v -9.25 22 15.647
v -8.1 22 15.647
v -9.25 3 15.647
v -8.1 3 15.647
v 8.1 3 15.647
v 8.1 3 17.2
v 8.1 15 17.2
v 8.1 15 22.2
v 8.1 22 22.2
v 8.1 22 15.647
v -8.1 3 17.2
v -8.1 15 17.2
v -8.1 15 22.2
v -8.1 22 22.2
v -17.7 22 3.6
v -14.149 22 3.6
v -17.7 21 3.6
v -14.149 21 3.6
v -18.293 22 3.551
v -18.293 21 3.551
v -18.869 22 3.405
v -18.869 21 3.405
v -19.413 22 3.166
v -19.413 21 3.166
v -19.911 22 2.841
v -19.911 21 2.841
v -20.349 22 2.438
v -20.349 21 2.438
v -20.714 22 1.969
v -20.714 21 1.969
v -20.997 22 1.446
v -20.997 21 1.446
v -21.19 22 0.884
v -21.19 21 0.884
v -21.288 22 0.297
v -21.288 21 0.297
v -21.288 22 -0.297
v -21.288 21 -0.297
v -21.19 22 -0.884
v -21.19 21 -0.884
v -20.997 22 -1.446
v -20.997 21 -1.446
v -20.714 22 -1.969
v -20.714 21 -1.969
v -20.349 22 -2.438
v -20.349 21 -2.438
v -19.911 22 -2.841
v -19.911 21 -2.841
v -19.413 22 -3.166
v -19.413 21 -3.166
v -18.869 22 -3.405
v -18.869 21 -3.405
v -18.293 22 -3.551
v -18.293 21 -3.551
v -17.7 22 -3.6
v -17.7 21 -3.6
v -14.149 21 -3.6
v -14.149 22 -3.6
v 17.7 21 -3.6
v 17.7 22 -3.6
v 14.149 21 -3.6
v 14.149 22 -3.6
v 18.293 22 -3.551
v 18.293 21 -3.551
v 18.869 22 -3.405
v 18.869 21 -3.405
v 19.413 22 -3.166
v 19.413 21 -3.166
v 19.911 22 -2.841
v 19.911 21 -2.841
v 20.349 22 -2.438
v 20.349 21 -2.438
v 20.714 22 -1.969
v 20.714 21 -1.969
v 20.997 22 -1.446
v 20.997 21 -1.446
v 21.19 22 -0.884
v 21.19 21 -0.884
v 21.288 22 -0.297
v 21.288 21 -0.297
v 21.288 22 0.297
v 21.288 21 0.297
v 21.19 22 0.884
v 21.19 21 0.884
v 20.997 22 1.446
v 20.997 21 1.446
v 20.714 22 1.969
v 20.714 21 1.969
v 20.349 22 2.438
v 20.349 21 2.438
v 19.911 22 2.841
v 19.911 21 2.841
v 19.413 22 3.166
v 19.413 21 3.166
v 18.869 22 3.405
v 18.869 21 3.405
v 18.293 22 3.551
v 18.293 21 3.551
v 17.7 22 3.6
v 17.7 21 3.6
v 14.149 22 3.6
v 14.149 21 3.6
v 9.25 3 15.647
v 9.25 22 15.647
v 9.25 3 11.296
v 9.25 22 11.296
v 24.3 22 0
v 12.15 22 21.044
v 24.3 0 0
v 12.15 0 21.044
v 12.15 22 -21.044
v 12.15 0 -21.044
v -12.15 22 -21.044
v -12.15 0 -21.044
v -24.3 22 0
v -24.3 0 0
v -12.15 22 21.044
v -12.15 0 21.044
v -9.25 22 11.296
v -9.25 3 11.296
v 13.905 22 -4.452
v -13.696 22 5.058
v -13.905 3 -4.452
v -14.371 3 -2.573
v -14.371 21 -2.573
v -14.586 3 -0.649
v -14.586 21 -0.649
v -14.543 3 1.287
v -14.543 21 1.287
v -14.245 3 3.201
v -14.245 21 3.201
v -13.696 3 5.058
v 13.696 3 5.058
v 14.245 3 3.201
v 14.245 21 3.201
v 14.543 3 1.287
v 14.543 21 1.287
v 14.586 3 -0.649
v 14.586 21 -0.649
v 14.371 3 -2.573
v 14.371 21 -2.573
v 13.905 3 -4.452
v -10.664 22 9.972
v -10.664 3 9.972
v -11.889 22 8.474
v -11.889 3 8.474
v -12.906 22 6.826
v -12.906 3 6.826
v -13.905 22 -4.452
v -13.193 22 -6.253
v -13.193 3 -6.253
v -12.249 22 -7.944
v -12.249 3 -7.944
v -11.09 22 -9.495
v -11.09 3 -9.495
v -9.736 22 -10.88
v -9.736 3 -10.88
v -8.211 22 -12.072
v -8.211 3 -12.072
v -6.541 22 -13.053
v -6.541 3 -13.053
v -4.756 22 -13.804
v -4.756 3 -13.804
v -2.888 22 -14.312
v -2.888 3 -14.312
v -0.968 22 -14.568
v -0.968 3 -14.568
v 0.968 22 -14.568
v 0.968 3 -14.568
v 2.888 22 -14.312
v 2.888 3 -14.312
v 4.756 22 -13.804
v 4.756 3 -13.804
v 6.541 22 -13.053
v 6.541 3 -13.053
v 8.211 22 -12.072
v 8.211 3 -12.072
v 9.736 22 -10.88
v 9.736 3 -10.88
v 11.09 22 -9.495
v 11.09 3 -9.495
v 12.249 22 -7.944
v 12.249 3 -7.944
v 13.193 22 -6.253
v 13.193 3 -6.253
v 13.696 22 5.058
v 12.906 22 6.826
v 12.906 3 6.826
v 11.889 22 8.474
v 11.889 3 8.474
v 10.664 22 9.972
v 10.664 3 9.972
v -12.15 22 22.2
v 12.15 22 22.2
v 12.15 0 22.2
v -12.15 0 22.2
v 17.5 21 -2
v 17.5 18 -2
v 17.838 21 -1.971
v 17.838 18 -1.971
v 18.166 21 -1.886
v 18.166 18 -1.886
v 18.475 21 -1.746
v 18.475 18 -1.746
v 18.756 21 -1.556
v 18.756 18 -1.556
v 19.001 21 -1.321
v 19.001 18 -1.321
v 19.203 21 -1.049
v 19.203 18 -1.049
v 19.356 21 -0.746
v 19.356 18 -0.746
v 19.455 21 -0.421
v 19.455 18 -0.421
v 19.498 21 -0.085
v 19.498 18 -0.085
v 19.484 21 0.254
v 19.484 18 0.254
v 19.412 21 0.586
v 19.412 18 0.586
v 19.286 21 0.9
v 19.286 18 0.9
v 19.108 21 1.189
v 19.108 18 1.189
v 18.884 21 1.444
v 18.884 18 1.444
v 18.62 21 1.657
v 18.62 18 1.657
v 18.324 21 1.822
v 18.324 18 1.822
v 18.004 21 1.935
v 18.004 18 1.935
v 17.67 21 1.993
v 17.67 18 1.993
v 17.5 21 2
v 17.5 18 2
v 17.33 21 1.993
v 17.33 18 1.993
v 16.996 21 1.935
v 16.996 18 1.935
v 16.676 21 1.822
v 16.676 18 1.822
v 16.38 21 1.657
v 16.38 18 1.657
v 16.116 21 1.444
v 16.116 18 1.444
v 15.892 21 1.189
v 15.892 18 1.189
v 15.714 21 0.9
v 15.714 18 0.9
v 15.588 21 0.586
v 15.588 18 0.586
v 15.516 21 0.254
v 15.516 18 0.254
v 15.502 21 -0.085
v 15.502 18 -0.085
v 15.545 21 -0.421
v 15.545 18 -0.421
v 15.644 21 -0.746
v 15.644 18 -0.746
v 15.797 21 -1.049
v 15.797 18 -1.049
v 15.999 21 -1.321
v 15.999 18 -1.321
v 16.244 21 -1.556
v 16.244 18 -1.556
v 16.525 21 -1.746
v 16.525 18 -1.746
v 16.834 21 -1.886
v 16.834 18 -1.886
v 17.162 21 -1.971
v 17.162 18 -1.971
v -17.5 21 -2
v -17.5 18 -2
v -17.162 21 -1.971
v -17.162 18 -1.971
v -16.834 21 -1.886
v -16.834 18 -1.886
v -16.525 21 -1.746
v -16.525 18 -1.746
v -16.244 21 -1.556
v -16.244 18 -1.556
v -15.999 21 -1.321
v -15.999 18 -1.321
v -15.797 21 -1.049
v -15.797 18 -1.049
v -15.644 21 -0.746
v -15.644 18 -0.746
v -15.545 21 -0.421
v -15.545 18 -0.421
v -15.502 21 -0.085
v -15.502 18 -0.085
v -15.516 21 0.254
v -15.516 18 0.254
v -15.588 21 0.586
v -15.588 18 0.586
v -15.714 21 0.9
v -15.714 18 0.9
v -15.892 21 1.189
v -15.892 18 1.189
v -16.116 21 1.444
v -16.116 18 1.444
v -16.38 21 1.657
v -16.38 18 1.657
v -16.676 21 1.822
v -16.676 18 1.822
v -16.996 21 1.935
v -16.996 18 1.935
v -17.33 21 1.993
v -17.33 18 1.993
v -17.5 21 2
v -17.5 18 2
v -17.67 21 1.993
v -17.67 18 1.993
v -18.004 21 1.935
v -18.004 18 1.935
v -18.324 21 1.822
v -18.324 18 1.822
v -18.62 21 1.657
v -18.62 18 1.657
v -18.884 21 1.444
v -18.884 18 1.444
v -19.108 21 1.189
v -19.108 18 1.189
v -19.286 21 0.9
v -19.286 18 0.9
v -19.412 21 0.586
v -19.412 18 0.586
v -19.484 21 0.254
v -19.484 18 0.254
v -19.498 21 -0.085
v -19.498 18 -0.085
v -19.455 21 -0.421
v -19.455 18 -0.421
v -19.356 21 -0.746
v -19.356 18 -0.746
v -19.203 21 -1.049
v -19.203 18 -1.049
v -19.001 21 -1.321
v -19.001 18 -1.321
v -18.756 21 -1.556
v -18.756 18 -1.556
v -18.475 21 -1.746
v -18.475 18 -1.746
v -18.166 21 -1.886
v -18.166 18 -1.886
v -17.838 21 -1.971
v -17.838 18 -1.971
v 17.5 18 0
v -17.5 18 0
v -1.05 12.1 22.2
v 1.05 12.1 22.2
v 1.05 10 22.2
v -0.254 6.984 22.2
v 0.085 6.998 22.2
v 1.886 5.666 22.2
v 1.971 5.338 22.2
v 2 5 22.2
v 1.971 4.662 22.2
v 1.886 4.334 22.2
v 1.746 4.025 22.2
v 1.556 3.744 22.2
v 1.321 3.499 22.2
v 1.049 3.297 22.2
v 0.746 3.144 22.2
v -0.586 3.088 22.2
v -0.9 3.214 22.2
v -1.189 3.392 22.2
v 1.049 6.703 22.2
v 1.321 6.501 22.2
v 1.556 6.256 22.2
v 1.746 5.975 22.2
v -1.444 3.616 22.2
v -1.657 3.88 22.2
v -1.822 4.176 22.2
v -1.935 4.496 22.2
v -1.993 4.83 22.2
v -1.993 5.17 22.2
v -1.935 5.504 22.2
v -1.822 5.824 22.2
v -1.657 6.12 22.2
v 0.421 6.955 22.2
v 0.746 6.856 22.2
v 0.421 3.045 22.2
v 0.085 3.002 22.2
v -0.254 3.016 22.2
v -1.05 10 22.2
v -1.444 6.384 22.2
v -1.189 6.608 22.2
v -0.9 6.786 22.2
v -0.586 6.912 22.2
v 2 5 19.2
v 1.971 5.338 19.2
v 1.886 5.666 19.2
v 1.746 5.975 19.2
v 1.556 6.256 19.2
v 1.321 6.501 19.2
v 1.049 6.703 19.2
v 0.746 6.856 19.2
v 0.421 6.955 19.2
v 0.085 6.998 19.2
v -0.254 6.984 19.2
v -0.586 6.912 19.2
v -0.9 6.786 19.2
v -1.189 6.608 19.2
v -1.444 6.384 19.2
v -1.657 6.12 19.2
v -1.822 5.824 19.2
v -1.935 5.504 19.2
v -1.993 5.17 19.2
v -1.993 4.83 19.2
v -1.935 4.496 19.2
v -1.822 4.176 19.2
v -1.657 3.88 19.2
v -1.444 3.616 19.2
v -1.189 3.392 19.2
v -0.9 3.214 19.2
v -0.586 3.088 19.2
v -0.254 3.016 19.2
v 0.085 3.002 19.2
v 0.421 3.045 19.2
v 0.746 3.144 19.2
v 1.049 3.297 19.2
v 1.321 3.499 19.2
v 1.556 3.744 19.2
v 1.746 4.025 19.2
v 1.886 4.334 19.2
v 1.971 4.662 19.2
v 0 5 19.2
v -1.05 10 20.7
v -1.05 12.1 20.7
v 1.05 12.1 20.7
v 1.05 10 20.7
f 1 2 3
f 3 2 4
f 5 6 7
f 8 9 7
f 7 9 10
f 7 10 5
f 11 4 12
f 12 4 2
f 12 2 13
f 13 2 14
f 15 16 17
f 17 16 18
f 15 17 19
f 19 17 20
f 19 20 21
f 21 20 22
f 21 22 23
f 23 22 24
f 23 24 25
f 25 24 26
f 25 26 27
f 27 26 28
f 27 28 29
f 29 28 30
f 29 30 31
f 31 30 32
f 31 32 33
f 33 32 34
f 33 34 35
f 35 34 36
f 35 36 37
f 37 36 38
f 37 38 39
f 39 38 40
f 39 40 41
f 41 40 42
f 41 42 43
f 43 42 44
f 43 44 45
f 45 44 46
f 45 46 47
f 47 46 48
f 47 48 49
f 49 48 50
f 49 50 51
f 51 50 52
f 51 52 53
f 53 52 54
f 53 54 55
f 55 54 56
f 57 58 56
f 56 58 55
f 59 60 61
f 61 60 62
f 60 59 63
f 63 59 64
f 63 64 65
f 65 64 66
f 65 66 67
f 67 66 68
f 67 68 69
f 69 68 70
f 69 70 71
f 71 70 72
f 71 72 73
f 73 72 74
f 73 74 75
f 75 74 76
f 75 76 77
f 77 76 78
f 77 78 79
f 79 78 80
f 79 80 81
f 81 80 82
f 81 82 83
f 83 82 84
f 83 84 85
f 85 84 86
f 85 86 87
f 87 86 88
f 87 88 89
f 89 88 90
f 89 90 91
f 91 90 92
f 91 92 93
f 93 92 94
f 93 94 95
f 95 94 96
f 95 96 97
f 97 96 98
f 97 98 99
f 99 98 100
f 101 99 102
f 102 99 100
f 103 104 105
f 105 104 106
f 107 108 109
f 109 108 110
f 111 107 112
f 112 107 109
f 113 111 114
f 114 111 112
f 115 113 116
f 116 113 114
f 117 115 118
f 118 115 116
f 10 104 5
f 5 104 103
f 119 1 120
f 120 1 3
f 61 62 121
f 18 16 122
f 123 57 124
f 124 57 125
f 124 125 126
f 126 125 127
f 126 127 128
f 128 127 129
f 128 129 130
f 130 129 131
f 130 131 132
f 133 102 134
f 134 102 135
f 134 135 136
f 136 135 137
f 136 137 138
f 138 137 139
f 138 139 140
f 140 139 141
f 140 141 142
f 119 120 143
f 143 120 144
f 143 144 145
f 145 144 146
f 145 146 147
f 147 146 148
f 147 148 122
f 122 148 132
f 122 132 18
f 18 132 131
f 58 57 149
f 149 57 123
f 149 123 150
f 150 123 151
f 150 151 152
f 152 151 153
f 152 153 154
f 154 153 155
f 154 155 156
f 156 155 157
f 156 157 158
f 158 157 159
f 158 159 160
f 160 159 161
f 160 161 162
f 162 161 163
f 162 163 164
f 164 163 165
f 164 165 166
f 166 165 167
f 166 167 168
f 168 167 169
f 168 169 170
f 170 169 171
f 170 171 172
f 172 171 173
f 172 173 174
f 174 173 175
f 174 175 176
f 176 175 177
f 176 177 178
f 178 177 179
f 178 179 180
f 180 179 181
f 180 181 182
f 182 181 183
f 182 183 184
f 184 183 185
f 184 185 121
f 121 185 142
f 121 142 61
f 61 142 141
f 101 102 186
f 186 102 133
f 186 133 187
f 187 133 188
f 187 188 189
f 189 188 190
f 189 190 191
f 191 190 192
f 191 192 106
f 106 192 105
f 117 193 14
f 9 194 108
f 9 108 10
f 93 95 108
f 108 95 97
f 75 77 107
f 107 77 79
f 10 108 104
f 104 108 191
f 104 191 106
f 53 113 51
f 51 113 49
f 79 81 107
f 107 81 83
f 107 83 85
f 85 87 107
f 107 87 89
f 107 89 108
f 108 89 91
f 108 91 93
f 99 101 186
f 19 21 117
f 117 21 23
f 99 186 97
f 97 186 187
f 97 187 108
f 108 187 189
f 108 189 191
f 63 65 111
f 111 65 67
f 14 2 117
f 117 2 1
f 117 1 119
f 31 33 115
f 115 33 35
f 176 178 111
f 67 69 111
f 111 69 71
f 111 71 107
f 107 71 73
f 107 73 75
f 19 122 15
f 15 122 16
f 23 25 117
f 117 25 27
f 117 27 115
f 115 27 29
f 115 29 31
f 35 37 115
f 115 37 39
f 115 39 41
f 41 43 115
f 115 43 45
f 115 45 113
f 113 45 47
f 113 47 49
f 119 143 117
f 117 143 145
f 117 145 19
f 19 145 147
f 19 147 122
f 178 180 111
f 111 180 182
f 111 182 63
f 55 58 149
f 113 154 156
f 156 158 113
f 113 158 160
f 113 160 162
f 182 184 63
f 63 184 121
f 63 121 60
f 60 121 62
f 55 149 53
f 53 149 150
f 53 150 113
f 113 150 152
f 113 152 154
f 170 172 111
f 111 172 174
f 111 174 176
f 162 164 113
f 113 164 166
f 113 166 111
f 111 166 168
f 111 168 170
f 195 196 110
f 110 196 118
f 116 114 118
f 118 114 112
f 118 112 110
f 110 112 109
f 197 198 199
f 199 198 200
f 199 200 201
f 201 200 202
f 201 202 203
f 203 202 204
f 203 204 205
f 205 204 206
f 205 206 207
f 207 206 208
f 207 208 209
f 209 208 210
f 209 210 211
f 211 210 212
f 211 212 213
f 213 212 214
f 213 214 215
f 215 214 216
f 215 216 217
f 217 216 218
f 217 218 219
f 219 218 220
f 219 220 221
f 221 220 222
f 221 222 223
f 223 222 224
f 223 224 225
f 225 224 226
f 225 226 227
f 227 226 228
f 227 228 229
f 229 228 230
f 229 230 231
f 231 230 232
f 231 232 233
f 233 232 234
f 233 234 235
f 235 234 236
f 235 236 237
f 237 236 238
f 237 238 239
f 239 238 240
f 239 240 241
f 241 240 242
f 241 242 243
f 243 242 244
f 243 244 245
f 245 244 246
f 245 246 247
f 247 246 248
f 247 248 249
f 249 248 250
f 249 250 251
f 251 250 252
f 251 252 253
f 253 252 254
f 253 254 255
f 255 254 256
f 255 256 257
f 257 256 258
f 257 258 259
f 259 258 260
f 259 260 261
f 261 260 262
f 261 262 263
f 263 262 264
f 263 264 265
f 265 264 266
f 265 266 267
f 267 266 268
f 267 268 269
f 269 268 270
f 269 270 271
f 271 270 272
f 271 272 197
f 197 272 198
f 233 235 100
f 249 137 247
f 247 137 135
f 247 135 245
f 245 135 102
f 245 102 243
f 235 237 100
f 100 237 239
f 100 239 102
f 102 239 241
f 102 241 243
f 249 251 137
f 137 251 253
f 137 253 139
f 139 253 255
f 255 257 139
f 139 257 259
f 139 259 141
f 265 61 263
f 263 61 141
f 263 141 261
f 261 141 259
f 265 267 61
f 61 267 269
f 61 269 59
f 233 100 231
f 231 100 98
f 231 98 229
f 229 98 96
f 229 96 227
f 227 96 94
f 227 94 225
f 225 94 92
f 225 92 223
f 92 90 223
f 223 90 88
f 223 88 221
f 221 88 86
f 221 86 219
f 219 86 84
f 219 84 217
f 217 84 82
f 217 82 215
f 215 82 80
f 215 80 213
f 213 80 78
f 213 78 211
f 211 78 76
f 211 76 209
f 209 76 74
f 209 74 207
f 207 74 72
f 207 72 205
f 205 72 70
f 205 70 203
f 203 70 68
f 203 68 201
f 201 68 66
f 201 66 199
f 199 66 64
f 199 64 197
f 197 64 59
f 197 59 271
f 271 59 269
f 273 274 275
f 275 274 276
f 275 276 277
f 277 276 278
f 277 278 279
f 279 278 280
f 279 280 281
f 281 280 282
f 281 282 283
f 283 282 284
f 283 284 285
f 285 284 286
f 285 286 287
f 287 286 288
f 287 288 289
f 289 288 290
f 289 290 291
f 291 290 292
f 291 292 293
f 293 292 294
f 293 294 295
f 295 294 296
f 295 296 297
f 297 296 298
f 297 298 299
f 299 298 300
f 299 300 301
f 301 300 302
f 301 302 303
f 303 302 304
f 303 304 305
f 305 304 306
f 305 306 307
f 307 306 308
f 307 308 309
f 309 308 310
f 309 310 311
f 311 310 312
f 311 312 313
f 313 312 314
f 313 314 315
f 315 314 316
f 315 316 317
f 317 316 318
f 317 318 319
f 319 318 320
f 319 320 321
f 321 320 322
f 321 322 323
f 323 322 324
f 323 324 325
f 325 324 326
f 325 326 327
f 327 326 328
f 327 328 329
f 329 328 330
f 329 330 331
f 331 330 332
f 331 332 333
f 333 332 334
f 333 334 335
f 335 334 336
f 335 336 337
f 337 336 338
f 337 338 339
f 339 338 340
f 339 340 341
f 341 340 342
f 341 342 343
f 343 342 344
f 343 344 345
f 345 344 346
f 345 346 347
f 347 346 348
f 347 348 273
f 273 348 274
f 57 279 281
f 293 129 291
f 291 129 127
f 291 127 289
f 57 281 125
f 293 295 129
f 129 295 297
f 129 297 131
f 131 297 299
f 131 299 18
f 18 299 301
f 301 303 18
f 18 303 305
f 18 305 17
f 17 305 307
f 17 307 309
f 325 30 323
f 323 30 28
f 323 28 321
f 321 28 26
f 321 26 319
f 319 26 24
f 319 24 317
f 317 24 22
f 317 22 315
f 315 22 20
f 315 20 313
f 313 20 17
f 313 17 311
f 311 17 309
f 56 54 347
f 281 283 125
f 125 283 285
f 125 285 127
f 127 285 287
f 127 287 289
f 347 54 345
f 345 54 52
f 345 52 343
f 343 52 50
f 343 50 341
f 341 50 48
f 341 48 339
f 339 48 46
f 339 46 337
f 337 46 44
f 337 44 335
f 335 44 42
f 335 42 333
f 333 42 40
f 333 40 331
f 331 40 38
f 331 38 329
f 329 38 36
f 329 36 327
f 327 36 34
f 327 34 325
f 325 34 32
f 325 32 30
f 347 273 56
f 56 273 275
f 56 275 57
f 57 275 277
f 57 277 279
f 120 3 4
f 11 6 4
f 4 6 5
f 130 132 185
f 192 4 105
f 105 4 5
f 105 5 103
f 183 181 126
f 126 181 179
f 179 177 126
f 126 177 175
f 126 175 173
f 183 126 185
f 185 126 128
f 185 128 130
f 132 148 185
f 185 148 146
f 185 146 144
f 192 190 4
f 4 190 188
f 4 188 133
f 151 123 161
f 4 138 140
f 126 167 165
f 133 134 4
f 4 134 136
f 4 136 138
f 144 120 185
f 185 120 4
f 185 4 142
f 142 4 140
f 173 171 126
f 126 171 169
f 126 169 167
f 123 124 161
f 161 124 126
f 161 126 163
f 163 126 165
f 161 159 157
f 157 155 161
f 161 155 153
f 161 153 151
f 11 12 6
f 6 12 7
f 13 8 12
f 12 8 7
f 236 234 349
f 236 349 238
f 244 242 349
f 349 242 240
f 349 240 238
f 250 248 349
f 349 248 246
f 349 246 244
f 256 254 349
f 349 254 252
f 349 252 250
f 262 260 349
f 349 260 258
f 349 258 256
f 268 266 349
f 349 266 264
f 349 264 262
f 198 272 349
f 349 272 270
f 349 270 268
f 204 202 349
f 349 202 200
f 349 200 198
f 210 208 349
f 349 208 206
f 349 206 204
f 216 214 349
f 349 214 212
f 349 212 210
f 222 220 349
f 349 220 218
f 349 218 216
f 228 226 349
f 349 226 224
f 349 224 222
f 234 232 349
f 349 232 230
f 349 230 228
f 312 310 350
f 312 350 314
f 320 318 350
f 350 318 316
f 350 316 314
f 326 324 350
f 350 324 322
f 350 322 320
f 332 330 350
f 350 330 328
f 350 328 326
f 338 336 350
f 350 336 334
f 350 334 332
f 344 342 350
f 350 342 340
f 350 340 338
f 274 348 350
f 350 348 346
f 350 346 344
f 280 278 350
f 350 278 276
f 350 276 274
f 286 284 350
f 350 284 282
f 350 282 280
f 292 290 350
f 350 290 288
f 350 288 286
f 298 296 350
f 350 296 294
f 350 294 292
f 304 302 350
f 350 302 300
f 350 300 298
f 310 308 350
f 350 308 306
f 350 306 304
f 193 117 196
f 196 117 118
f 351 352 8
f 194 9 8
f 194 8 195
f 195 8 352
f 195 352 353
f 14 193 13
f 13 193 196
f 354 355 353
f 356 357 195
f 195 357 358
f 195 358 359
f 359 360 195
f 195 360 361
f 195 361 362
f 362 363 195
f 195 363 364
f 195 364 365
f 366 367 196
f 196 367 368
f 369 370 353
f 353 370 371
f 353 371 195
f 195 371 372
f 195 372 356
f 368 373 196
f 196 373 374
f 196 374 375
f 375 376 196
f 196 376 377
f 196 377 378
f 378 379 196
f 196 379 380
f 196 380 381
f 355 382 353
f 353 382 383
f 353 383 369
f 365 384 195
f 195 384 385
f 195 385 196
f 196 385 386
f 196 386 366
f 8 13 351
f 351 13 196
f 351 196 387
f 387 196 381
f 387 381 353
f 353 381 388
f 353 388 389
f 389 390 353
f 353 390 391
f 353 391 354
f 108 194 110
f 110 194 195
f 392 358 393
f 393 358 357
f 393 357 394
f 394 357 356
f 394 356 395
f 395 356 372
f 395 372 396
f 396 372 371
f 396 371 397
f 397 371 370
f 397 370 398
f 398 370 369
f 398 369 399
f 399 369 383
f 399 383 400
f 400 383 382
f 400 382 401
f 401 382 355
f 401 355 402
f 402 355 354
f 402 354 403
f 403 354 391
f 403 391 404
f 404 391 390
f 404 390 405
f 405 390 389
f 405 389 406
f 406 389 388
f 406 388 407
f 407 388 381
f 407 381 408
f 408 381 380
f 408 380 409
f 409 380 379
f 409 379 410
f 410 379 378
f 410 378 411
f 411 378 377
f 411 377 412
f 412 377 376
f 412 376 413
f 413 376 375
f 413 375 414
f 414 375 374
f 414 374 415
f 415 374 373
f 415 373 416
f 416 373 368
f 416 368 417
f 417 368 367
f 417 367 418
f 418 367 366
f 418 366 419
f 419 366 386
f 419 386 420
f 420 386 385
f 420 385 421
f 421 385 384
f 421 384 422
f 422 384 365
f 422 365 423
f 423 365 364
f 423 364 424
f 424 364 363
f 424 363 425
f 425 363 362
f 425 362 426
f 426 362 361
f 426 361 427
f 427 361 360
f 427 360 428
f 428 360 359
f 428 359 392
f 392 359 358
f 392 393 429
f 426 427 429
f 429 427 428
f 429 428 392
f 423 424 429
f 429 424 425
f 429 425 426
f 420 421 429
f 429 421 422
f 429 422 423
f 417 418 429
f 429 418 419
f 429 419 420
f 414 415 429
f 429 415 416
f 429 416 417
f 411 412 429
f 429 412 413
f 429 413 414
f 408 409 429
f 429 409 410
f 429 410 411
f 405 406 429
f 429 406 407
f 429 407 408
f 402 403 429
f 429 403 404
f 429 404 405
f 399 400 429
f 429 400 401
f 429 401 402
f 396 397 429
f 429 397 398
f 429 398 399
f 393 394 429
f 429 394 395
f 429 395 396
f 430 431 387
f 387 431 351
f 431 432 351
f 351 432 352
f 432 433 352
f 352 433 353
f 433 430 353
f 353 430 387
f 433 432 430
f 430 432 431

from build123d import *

# Parameters (mm, degrees)
BOSS_EXTRUDE12_DEPTH = 22
SKETCH1_14_R         = 2
BOSS_EXTRUDE13_DEPTH = 21
BOSS_EXTRUDE14_DEPTH = 3
SKETCH1_16_W         = 16.2
SKETCH1_16_H         = 1.552983906
BOSS_EXTRUDE15_DEPTH = 3
SKETCH1_17_W         = 16.2
SKETCH1_17_H         = 3.844417312
BOSS_EXTRUDE16_DEPTH = 15
SKETCH1_18_R         = 2
BOSS_EXTRUDE17_DEPTH = 18
SKETCH1_19_W         = 4.05
SKETCH1_19_H         = 1.155582688
BOSS_EXTRUDE18_DEPTH = 22
SKETCH1_20_W         = 16.2
SKETCH1_20_H         = 1.155582688
BOSS_EXTRUDE19_DEPTH = 15
SKETCH10_R           = 2
CUT_EXTRUDE6_DEPTH   = 3
SKETCH10_10_W        = 2.1
SKETCH10_10_H        = 2.1
CUT_EXTRUDE7_DEPTH   = 1.5
SKETCH1_21_W         = 18.5
SKETCH1_21_H         = 15.647016094
BOSS_EXTRUDE20_DEPTH = 3


with BuildPart() as part:
    # Sketch1 → Boss-Extrude12 (new body)
    with BuildSketch(Plane(origin=(0, 0, 0), x_dir=(1, 0, 0), z_dir=(0, 1, 0))):
        with BuildLine():
            ThreePointArc((-17.7, -3.6), (-21.3, 0), (-17.7, 3.6))
            Line((-17.7, 3.6), (-14.149204925, 3.6))
            ThreePointArc((-14.149204925, 3.6), (0, 14.6), (14.149204925, 3.6))
            Line((14.149204925, 3.6), (17.7, 3.6))
            ThreePointArc((17.7, 3.6), (21.3, 0), (17.7, -3.6))
            Line((17.7, -3.6), (14.149204925, -3.6))
            ThreePointArc((14.149204925, -3.6), (12.316145556, -7.840443778), (9.25, -11.295906338))
            Line((9.25, -11.295906338), (9.25, -15.647016094))
            Line((9.25, -15.647016094), (8.1, -15.647016094))
            Line((8.1, -15.647016094), (8.1, -17.2))
            Line((8.1, -17.2), (8.1, -21.044417312))
            Line((8.1, -21.044417312), (12.15, -21.044417312))
            Line((12.15, -21.044417312), (24.3, 0))
            Line((24.3, 0), (12.15, 21.044417312))
            Line((12.15, 21.044417312), (-12.15, 21.044417312))
            Line((-12.15, 21.044417312), (-24.3, 0))
            Line((-24.3, 0), (-12.15, -21.044417312))
            Line((-12.15, -21.044417312), (-8.1, -21.044417312))
            Line((-8.1, -21.044417312), (-8.1, -17.2))
            Line((-8.1, -17.2), (-8.1, -15.647016094))
            Line((-8.1, -15.647016094), (-9.25, -15.647016094))
            Line((-9.25, -15.647016094), (-9.25, -11.295906338))
            ThreePointArc((-9.25, -11.295906338), (-12.316145556, -7.840443778), (-14.149204925, -3.6))
            Line((-14.149204925, -3.6), (-17.7, -3.6))
        make_face()
    extrude(amount=BOSS_EXTRUDE12_DEPTH)

    # Sketch1<14> → Boss-Extrude13 (add)
    # profile 1 of 2: a face of its own
    with BuildSketch(Plane(origin=(0, 0, 0), x_dir=(1, 0, 0), z_dir=(0, 1, 0))):
        with BuildLine():
            Line((-14.149204925, 3.6), (-17.7, 3.6))
            ThreePointArc((-17.7, 3.6), (-21.3, 0), (-17.7, -3.6))
            Line((-17.7, -3.6), (-14.149204925, -3.6))
            ThreePointArc((-14.149204925, -3.6), (-14.6, 0), (-14.149204925, 3.6))
        make_face()
        with Locations((-17.5, 0)):
            Circle(SKETCH1_14_R, mode=Mode.SUBTRACT)
    # profile 2 of 2: a face of its own
    with BuildSketch(Plane(origin=(0, 0, 0), x_dir=(1, 0, 0), z_dir=(0, 1, 0))):
        with BuildLine():
            Line((17.7, 3.6), (14.149204925, 3.6))
            ThreePointArc((14.149204925, 3.6), (14.6, 0), (14.149204925, -3.6))
            Line((14.149204925, -3.6), (17.7, -3.6))
            ThreePointArc((17.7, -3.6), (21.3, 0), (17.7, 3.6))
        make_face()
        with Locations((17.5, 0)):
            Circle(SKETCH1_14_R, mode=Mode.SUBTRACT)
    extrude(amount=BOSS_EXTRUDE13_DEPTH)

    # Sketch1<15> → Boss-Extrude14 (add)
    with BuildSketch(Plane(origin=(0, 0, 0), x_dir=(1, 0, 0), z_dir=(0, 1, 0))):
        with BuildLine():
            ThreePointArc((14.149204925, 3.6), (0, 14.6), (-14.149204925, 3.6))
            ThreePointArc((-14.149204925, 3.6), (-14.6, 0), (-14.149204925, -3.6))
            ThreePointArc((-14.149204925, -3.6), (-12.316145556, -7.840443778), (-9.25, -11.295906338))
            Line((-9.25, -11.295906338), (-9.25, 0))
            Line((-9.25, 0), (9.25, 0))
            Line((9.25, 0), (9.25, -11.295906338))
            ThreePointArc((9.25, -11.295906338), (12.316145556, -7.840443778), (14.149204925, -3.6))
            ThreePointArc((14.149204925, -3.6), (14.6, 0), (14.149204925, 3.6))
        make_face()
    extrude(amount=BOSS_EXTRUDE14_DEPTH)

    # Sketch1<16> → Boss-Extrude15 (add)
    with BuildSketch(Plane(origin=(0, 0, 0), x_dir=(1, 0, 0), z_dir=(0, 1, 0))):
        with Locations((0, -16.423508047)):
            Rectangle(SKETCH1_16_W, SKETCH1_16_H)
    extrude(amount=BOSS_EXTRUDE15_DEPTH)

    # Sketch1<17> → Boss-Extrude16 (add)
    with BuildSketch(Plane(origin=(0, 0, 0), x_dir=(1, 0, 0), z_dir=(0, 1, 0))):
        with Locations((0, -19.122208656)):
            Rectangle(SKETCH1_17_W, SKETCH1_17_H)
    extrude(amount=BOSS_EXTRUDE16_DEPTH)

    # Sketch1<18> → Boss-Extrude17 (add)
    with BuildSketch(Plane(origin=(0, 0, 0), x_dir=(1, 0, 0), z_dir=(0, 1, 0))):
        with Locations((17.5, 0)):
            Circle(SKETCH1_18_R)
        with Locations((-17.5, 0)):
            Circle(SKETCH1_18_R)
    extrude(amount=BOSS_EXTRUDE17_DEPTH)

    # Sketch1<19> → Boss-Extrude18 (add)
    with BuildSketch(Plane(origin=(0, 0, 0), x_dir=(1, 0, 0), z_dir=(0, 1, 0))):
        with Locations((-10.125, -21.622208656)):
            Rectangle(SKETCH1_19_W, SKETCH1_19_H)
        with Locations((10.125, -21.622208656)):
            Rectangle(SKETCH1_19_W, SKETCH1_19_H)
    extrude(amount=BOSS_EXTRUDE18_DEPTH)

    # Sketch1<20> → Boss-Extrude19 (add)
    with BuildSketch(Plane(origin=(0, 0, 0), x_dir=(1, 0, 0), z_dir=(0, 1, 0))):
        with Locations((0, -21.622208656)):
            Rectangle(SKETCH1_20_W, SKETCH1_20_H)
    extrude(amount=BOSS_EXTRUDE19_DEPTH)

    # Sketch10 → Cut-Extrude6 (cut)
    with BuildSketch(Plane.XY.offset(22.2)):
        with Locations((0, 5)):
            Circle(SKETCH10_R)
    extrude(amount=-CUT_EXTRUDE6_DEPTH, mode=Mode.SUBTRACT)

    # Sketch10<10> → Cut-Extrude7 (cut)
    with BuildSketch(Plane.XY.offset(22.2)):
        with Locations((0, 11.05)):
            Rectangle(SKETCH10_10_W, SKETCH10_10_H)
    extrude(amount=-CUT_EXTRUDE7_DEPTH, mode=Mode.SUBTRACT)

    # Sketch1<21> → Boss-Extrude20 (add)
    with BuildSketch(Plane(origin=(0, 0, 0), x_dir=(1, 0, 0), z_dir=(0, 1, 0))):
        with Locations((0, -7.823508047)):
            Rectangle(SKETCH1_21_W, SKETCH1_21_H)
    extrude(amount=BOSS_EXTRUDE20_DEPTH)


solid = part.part
